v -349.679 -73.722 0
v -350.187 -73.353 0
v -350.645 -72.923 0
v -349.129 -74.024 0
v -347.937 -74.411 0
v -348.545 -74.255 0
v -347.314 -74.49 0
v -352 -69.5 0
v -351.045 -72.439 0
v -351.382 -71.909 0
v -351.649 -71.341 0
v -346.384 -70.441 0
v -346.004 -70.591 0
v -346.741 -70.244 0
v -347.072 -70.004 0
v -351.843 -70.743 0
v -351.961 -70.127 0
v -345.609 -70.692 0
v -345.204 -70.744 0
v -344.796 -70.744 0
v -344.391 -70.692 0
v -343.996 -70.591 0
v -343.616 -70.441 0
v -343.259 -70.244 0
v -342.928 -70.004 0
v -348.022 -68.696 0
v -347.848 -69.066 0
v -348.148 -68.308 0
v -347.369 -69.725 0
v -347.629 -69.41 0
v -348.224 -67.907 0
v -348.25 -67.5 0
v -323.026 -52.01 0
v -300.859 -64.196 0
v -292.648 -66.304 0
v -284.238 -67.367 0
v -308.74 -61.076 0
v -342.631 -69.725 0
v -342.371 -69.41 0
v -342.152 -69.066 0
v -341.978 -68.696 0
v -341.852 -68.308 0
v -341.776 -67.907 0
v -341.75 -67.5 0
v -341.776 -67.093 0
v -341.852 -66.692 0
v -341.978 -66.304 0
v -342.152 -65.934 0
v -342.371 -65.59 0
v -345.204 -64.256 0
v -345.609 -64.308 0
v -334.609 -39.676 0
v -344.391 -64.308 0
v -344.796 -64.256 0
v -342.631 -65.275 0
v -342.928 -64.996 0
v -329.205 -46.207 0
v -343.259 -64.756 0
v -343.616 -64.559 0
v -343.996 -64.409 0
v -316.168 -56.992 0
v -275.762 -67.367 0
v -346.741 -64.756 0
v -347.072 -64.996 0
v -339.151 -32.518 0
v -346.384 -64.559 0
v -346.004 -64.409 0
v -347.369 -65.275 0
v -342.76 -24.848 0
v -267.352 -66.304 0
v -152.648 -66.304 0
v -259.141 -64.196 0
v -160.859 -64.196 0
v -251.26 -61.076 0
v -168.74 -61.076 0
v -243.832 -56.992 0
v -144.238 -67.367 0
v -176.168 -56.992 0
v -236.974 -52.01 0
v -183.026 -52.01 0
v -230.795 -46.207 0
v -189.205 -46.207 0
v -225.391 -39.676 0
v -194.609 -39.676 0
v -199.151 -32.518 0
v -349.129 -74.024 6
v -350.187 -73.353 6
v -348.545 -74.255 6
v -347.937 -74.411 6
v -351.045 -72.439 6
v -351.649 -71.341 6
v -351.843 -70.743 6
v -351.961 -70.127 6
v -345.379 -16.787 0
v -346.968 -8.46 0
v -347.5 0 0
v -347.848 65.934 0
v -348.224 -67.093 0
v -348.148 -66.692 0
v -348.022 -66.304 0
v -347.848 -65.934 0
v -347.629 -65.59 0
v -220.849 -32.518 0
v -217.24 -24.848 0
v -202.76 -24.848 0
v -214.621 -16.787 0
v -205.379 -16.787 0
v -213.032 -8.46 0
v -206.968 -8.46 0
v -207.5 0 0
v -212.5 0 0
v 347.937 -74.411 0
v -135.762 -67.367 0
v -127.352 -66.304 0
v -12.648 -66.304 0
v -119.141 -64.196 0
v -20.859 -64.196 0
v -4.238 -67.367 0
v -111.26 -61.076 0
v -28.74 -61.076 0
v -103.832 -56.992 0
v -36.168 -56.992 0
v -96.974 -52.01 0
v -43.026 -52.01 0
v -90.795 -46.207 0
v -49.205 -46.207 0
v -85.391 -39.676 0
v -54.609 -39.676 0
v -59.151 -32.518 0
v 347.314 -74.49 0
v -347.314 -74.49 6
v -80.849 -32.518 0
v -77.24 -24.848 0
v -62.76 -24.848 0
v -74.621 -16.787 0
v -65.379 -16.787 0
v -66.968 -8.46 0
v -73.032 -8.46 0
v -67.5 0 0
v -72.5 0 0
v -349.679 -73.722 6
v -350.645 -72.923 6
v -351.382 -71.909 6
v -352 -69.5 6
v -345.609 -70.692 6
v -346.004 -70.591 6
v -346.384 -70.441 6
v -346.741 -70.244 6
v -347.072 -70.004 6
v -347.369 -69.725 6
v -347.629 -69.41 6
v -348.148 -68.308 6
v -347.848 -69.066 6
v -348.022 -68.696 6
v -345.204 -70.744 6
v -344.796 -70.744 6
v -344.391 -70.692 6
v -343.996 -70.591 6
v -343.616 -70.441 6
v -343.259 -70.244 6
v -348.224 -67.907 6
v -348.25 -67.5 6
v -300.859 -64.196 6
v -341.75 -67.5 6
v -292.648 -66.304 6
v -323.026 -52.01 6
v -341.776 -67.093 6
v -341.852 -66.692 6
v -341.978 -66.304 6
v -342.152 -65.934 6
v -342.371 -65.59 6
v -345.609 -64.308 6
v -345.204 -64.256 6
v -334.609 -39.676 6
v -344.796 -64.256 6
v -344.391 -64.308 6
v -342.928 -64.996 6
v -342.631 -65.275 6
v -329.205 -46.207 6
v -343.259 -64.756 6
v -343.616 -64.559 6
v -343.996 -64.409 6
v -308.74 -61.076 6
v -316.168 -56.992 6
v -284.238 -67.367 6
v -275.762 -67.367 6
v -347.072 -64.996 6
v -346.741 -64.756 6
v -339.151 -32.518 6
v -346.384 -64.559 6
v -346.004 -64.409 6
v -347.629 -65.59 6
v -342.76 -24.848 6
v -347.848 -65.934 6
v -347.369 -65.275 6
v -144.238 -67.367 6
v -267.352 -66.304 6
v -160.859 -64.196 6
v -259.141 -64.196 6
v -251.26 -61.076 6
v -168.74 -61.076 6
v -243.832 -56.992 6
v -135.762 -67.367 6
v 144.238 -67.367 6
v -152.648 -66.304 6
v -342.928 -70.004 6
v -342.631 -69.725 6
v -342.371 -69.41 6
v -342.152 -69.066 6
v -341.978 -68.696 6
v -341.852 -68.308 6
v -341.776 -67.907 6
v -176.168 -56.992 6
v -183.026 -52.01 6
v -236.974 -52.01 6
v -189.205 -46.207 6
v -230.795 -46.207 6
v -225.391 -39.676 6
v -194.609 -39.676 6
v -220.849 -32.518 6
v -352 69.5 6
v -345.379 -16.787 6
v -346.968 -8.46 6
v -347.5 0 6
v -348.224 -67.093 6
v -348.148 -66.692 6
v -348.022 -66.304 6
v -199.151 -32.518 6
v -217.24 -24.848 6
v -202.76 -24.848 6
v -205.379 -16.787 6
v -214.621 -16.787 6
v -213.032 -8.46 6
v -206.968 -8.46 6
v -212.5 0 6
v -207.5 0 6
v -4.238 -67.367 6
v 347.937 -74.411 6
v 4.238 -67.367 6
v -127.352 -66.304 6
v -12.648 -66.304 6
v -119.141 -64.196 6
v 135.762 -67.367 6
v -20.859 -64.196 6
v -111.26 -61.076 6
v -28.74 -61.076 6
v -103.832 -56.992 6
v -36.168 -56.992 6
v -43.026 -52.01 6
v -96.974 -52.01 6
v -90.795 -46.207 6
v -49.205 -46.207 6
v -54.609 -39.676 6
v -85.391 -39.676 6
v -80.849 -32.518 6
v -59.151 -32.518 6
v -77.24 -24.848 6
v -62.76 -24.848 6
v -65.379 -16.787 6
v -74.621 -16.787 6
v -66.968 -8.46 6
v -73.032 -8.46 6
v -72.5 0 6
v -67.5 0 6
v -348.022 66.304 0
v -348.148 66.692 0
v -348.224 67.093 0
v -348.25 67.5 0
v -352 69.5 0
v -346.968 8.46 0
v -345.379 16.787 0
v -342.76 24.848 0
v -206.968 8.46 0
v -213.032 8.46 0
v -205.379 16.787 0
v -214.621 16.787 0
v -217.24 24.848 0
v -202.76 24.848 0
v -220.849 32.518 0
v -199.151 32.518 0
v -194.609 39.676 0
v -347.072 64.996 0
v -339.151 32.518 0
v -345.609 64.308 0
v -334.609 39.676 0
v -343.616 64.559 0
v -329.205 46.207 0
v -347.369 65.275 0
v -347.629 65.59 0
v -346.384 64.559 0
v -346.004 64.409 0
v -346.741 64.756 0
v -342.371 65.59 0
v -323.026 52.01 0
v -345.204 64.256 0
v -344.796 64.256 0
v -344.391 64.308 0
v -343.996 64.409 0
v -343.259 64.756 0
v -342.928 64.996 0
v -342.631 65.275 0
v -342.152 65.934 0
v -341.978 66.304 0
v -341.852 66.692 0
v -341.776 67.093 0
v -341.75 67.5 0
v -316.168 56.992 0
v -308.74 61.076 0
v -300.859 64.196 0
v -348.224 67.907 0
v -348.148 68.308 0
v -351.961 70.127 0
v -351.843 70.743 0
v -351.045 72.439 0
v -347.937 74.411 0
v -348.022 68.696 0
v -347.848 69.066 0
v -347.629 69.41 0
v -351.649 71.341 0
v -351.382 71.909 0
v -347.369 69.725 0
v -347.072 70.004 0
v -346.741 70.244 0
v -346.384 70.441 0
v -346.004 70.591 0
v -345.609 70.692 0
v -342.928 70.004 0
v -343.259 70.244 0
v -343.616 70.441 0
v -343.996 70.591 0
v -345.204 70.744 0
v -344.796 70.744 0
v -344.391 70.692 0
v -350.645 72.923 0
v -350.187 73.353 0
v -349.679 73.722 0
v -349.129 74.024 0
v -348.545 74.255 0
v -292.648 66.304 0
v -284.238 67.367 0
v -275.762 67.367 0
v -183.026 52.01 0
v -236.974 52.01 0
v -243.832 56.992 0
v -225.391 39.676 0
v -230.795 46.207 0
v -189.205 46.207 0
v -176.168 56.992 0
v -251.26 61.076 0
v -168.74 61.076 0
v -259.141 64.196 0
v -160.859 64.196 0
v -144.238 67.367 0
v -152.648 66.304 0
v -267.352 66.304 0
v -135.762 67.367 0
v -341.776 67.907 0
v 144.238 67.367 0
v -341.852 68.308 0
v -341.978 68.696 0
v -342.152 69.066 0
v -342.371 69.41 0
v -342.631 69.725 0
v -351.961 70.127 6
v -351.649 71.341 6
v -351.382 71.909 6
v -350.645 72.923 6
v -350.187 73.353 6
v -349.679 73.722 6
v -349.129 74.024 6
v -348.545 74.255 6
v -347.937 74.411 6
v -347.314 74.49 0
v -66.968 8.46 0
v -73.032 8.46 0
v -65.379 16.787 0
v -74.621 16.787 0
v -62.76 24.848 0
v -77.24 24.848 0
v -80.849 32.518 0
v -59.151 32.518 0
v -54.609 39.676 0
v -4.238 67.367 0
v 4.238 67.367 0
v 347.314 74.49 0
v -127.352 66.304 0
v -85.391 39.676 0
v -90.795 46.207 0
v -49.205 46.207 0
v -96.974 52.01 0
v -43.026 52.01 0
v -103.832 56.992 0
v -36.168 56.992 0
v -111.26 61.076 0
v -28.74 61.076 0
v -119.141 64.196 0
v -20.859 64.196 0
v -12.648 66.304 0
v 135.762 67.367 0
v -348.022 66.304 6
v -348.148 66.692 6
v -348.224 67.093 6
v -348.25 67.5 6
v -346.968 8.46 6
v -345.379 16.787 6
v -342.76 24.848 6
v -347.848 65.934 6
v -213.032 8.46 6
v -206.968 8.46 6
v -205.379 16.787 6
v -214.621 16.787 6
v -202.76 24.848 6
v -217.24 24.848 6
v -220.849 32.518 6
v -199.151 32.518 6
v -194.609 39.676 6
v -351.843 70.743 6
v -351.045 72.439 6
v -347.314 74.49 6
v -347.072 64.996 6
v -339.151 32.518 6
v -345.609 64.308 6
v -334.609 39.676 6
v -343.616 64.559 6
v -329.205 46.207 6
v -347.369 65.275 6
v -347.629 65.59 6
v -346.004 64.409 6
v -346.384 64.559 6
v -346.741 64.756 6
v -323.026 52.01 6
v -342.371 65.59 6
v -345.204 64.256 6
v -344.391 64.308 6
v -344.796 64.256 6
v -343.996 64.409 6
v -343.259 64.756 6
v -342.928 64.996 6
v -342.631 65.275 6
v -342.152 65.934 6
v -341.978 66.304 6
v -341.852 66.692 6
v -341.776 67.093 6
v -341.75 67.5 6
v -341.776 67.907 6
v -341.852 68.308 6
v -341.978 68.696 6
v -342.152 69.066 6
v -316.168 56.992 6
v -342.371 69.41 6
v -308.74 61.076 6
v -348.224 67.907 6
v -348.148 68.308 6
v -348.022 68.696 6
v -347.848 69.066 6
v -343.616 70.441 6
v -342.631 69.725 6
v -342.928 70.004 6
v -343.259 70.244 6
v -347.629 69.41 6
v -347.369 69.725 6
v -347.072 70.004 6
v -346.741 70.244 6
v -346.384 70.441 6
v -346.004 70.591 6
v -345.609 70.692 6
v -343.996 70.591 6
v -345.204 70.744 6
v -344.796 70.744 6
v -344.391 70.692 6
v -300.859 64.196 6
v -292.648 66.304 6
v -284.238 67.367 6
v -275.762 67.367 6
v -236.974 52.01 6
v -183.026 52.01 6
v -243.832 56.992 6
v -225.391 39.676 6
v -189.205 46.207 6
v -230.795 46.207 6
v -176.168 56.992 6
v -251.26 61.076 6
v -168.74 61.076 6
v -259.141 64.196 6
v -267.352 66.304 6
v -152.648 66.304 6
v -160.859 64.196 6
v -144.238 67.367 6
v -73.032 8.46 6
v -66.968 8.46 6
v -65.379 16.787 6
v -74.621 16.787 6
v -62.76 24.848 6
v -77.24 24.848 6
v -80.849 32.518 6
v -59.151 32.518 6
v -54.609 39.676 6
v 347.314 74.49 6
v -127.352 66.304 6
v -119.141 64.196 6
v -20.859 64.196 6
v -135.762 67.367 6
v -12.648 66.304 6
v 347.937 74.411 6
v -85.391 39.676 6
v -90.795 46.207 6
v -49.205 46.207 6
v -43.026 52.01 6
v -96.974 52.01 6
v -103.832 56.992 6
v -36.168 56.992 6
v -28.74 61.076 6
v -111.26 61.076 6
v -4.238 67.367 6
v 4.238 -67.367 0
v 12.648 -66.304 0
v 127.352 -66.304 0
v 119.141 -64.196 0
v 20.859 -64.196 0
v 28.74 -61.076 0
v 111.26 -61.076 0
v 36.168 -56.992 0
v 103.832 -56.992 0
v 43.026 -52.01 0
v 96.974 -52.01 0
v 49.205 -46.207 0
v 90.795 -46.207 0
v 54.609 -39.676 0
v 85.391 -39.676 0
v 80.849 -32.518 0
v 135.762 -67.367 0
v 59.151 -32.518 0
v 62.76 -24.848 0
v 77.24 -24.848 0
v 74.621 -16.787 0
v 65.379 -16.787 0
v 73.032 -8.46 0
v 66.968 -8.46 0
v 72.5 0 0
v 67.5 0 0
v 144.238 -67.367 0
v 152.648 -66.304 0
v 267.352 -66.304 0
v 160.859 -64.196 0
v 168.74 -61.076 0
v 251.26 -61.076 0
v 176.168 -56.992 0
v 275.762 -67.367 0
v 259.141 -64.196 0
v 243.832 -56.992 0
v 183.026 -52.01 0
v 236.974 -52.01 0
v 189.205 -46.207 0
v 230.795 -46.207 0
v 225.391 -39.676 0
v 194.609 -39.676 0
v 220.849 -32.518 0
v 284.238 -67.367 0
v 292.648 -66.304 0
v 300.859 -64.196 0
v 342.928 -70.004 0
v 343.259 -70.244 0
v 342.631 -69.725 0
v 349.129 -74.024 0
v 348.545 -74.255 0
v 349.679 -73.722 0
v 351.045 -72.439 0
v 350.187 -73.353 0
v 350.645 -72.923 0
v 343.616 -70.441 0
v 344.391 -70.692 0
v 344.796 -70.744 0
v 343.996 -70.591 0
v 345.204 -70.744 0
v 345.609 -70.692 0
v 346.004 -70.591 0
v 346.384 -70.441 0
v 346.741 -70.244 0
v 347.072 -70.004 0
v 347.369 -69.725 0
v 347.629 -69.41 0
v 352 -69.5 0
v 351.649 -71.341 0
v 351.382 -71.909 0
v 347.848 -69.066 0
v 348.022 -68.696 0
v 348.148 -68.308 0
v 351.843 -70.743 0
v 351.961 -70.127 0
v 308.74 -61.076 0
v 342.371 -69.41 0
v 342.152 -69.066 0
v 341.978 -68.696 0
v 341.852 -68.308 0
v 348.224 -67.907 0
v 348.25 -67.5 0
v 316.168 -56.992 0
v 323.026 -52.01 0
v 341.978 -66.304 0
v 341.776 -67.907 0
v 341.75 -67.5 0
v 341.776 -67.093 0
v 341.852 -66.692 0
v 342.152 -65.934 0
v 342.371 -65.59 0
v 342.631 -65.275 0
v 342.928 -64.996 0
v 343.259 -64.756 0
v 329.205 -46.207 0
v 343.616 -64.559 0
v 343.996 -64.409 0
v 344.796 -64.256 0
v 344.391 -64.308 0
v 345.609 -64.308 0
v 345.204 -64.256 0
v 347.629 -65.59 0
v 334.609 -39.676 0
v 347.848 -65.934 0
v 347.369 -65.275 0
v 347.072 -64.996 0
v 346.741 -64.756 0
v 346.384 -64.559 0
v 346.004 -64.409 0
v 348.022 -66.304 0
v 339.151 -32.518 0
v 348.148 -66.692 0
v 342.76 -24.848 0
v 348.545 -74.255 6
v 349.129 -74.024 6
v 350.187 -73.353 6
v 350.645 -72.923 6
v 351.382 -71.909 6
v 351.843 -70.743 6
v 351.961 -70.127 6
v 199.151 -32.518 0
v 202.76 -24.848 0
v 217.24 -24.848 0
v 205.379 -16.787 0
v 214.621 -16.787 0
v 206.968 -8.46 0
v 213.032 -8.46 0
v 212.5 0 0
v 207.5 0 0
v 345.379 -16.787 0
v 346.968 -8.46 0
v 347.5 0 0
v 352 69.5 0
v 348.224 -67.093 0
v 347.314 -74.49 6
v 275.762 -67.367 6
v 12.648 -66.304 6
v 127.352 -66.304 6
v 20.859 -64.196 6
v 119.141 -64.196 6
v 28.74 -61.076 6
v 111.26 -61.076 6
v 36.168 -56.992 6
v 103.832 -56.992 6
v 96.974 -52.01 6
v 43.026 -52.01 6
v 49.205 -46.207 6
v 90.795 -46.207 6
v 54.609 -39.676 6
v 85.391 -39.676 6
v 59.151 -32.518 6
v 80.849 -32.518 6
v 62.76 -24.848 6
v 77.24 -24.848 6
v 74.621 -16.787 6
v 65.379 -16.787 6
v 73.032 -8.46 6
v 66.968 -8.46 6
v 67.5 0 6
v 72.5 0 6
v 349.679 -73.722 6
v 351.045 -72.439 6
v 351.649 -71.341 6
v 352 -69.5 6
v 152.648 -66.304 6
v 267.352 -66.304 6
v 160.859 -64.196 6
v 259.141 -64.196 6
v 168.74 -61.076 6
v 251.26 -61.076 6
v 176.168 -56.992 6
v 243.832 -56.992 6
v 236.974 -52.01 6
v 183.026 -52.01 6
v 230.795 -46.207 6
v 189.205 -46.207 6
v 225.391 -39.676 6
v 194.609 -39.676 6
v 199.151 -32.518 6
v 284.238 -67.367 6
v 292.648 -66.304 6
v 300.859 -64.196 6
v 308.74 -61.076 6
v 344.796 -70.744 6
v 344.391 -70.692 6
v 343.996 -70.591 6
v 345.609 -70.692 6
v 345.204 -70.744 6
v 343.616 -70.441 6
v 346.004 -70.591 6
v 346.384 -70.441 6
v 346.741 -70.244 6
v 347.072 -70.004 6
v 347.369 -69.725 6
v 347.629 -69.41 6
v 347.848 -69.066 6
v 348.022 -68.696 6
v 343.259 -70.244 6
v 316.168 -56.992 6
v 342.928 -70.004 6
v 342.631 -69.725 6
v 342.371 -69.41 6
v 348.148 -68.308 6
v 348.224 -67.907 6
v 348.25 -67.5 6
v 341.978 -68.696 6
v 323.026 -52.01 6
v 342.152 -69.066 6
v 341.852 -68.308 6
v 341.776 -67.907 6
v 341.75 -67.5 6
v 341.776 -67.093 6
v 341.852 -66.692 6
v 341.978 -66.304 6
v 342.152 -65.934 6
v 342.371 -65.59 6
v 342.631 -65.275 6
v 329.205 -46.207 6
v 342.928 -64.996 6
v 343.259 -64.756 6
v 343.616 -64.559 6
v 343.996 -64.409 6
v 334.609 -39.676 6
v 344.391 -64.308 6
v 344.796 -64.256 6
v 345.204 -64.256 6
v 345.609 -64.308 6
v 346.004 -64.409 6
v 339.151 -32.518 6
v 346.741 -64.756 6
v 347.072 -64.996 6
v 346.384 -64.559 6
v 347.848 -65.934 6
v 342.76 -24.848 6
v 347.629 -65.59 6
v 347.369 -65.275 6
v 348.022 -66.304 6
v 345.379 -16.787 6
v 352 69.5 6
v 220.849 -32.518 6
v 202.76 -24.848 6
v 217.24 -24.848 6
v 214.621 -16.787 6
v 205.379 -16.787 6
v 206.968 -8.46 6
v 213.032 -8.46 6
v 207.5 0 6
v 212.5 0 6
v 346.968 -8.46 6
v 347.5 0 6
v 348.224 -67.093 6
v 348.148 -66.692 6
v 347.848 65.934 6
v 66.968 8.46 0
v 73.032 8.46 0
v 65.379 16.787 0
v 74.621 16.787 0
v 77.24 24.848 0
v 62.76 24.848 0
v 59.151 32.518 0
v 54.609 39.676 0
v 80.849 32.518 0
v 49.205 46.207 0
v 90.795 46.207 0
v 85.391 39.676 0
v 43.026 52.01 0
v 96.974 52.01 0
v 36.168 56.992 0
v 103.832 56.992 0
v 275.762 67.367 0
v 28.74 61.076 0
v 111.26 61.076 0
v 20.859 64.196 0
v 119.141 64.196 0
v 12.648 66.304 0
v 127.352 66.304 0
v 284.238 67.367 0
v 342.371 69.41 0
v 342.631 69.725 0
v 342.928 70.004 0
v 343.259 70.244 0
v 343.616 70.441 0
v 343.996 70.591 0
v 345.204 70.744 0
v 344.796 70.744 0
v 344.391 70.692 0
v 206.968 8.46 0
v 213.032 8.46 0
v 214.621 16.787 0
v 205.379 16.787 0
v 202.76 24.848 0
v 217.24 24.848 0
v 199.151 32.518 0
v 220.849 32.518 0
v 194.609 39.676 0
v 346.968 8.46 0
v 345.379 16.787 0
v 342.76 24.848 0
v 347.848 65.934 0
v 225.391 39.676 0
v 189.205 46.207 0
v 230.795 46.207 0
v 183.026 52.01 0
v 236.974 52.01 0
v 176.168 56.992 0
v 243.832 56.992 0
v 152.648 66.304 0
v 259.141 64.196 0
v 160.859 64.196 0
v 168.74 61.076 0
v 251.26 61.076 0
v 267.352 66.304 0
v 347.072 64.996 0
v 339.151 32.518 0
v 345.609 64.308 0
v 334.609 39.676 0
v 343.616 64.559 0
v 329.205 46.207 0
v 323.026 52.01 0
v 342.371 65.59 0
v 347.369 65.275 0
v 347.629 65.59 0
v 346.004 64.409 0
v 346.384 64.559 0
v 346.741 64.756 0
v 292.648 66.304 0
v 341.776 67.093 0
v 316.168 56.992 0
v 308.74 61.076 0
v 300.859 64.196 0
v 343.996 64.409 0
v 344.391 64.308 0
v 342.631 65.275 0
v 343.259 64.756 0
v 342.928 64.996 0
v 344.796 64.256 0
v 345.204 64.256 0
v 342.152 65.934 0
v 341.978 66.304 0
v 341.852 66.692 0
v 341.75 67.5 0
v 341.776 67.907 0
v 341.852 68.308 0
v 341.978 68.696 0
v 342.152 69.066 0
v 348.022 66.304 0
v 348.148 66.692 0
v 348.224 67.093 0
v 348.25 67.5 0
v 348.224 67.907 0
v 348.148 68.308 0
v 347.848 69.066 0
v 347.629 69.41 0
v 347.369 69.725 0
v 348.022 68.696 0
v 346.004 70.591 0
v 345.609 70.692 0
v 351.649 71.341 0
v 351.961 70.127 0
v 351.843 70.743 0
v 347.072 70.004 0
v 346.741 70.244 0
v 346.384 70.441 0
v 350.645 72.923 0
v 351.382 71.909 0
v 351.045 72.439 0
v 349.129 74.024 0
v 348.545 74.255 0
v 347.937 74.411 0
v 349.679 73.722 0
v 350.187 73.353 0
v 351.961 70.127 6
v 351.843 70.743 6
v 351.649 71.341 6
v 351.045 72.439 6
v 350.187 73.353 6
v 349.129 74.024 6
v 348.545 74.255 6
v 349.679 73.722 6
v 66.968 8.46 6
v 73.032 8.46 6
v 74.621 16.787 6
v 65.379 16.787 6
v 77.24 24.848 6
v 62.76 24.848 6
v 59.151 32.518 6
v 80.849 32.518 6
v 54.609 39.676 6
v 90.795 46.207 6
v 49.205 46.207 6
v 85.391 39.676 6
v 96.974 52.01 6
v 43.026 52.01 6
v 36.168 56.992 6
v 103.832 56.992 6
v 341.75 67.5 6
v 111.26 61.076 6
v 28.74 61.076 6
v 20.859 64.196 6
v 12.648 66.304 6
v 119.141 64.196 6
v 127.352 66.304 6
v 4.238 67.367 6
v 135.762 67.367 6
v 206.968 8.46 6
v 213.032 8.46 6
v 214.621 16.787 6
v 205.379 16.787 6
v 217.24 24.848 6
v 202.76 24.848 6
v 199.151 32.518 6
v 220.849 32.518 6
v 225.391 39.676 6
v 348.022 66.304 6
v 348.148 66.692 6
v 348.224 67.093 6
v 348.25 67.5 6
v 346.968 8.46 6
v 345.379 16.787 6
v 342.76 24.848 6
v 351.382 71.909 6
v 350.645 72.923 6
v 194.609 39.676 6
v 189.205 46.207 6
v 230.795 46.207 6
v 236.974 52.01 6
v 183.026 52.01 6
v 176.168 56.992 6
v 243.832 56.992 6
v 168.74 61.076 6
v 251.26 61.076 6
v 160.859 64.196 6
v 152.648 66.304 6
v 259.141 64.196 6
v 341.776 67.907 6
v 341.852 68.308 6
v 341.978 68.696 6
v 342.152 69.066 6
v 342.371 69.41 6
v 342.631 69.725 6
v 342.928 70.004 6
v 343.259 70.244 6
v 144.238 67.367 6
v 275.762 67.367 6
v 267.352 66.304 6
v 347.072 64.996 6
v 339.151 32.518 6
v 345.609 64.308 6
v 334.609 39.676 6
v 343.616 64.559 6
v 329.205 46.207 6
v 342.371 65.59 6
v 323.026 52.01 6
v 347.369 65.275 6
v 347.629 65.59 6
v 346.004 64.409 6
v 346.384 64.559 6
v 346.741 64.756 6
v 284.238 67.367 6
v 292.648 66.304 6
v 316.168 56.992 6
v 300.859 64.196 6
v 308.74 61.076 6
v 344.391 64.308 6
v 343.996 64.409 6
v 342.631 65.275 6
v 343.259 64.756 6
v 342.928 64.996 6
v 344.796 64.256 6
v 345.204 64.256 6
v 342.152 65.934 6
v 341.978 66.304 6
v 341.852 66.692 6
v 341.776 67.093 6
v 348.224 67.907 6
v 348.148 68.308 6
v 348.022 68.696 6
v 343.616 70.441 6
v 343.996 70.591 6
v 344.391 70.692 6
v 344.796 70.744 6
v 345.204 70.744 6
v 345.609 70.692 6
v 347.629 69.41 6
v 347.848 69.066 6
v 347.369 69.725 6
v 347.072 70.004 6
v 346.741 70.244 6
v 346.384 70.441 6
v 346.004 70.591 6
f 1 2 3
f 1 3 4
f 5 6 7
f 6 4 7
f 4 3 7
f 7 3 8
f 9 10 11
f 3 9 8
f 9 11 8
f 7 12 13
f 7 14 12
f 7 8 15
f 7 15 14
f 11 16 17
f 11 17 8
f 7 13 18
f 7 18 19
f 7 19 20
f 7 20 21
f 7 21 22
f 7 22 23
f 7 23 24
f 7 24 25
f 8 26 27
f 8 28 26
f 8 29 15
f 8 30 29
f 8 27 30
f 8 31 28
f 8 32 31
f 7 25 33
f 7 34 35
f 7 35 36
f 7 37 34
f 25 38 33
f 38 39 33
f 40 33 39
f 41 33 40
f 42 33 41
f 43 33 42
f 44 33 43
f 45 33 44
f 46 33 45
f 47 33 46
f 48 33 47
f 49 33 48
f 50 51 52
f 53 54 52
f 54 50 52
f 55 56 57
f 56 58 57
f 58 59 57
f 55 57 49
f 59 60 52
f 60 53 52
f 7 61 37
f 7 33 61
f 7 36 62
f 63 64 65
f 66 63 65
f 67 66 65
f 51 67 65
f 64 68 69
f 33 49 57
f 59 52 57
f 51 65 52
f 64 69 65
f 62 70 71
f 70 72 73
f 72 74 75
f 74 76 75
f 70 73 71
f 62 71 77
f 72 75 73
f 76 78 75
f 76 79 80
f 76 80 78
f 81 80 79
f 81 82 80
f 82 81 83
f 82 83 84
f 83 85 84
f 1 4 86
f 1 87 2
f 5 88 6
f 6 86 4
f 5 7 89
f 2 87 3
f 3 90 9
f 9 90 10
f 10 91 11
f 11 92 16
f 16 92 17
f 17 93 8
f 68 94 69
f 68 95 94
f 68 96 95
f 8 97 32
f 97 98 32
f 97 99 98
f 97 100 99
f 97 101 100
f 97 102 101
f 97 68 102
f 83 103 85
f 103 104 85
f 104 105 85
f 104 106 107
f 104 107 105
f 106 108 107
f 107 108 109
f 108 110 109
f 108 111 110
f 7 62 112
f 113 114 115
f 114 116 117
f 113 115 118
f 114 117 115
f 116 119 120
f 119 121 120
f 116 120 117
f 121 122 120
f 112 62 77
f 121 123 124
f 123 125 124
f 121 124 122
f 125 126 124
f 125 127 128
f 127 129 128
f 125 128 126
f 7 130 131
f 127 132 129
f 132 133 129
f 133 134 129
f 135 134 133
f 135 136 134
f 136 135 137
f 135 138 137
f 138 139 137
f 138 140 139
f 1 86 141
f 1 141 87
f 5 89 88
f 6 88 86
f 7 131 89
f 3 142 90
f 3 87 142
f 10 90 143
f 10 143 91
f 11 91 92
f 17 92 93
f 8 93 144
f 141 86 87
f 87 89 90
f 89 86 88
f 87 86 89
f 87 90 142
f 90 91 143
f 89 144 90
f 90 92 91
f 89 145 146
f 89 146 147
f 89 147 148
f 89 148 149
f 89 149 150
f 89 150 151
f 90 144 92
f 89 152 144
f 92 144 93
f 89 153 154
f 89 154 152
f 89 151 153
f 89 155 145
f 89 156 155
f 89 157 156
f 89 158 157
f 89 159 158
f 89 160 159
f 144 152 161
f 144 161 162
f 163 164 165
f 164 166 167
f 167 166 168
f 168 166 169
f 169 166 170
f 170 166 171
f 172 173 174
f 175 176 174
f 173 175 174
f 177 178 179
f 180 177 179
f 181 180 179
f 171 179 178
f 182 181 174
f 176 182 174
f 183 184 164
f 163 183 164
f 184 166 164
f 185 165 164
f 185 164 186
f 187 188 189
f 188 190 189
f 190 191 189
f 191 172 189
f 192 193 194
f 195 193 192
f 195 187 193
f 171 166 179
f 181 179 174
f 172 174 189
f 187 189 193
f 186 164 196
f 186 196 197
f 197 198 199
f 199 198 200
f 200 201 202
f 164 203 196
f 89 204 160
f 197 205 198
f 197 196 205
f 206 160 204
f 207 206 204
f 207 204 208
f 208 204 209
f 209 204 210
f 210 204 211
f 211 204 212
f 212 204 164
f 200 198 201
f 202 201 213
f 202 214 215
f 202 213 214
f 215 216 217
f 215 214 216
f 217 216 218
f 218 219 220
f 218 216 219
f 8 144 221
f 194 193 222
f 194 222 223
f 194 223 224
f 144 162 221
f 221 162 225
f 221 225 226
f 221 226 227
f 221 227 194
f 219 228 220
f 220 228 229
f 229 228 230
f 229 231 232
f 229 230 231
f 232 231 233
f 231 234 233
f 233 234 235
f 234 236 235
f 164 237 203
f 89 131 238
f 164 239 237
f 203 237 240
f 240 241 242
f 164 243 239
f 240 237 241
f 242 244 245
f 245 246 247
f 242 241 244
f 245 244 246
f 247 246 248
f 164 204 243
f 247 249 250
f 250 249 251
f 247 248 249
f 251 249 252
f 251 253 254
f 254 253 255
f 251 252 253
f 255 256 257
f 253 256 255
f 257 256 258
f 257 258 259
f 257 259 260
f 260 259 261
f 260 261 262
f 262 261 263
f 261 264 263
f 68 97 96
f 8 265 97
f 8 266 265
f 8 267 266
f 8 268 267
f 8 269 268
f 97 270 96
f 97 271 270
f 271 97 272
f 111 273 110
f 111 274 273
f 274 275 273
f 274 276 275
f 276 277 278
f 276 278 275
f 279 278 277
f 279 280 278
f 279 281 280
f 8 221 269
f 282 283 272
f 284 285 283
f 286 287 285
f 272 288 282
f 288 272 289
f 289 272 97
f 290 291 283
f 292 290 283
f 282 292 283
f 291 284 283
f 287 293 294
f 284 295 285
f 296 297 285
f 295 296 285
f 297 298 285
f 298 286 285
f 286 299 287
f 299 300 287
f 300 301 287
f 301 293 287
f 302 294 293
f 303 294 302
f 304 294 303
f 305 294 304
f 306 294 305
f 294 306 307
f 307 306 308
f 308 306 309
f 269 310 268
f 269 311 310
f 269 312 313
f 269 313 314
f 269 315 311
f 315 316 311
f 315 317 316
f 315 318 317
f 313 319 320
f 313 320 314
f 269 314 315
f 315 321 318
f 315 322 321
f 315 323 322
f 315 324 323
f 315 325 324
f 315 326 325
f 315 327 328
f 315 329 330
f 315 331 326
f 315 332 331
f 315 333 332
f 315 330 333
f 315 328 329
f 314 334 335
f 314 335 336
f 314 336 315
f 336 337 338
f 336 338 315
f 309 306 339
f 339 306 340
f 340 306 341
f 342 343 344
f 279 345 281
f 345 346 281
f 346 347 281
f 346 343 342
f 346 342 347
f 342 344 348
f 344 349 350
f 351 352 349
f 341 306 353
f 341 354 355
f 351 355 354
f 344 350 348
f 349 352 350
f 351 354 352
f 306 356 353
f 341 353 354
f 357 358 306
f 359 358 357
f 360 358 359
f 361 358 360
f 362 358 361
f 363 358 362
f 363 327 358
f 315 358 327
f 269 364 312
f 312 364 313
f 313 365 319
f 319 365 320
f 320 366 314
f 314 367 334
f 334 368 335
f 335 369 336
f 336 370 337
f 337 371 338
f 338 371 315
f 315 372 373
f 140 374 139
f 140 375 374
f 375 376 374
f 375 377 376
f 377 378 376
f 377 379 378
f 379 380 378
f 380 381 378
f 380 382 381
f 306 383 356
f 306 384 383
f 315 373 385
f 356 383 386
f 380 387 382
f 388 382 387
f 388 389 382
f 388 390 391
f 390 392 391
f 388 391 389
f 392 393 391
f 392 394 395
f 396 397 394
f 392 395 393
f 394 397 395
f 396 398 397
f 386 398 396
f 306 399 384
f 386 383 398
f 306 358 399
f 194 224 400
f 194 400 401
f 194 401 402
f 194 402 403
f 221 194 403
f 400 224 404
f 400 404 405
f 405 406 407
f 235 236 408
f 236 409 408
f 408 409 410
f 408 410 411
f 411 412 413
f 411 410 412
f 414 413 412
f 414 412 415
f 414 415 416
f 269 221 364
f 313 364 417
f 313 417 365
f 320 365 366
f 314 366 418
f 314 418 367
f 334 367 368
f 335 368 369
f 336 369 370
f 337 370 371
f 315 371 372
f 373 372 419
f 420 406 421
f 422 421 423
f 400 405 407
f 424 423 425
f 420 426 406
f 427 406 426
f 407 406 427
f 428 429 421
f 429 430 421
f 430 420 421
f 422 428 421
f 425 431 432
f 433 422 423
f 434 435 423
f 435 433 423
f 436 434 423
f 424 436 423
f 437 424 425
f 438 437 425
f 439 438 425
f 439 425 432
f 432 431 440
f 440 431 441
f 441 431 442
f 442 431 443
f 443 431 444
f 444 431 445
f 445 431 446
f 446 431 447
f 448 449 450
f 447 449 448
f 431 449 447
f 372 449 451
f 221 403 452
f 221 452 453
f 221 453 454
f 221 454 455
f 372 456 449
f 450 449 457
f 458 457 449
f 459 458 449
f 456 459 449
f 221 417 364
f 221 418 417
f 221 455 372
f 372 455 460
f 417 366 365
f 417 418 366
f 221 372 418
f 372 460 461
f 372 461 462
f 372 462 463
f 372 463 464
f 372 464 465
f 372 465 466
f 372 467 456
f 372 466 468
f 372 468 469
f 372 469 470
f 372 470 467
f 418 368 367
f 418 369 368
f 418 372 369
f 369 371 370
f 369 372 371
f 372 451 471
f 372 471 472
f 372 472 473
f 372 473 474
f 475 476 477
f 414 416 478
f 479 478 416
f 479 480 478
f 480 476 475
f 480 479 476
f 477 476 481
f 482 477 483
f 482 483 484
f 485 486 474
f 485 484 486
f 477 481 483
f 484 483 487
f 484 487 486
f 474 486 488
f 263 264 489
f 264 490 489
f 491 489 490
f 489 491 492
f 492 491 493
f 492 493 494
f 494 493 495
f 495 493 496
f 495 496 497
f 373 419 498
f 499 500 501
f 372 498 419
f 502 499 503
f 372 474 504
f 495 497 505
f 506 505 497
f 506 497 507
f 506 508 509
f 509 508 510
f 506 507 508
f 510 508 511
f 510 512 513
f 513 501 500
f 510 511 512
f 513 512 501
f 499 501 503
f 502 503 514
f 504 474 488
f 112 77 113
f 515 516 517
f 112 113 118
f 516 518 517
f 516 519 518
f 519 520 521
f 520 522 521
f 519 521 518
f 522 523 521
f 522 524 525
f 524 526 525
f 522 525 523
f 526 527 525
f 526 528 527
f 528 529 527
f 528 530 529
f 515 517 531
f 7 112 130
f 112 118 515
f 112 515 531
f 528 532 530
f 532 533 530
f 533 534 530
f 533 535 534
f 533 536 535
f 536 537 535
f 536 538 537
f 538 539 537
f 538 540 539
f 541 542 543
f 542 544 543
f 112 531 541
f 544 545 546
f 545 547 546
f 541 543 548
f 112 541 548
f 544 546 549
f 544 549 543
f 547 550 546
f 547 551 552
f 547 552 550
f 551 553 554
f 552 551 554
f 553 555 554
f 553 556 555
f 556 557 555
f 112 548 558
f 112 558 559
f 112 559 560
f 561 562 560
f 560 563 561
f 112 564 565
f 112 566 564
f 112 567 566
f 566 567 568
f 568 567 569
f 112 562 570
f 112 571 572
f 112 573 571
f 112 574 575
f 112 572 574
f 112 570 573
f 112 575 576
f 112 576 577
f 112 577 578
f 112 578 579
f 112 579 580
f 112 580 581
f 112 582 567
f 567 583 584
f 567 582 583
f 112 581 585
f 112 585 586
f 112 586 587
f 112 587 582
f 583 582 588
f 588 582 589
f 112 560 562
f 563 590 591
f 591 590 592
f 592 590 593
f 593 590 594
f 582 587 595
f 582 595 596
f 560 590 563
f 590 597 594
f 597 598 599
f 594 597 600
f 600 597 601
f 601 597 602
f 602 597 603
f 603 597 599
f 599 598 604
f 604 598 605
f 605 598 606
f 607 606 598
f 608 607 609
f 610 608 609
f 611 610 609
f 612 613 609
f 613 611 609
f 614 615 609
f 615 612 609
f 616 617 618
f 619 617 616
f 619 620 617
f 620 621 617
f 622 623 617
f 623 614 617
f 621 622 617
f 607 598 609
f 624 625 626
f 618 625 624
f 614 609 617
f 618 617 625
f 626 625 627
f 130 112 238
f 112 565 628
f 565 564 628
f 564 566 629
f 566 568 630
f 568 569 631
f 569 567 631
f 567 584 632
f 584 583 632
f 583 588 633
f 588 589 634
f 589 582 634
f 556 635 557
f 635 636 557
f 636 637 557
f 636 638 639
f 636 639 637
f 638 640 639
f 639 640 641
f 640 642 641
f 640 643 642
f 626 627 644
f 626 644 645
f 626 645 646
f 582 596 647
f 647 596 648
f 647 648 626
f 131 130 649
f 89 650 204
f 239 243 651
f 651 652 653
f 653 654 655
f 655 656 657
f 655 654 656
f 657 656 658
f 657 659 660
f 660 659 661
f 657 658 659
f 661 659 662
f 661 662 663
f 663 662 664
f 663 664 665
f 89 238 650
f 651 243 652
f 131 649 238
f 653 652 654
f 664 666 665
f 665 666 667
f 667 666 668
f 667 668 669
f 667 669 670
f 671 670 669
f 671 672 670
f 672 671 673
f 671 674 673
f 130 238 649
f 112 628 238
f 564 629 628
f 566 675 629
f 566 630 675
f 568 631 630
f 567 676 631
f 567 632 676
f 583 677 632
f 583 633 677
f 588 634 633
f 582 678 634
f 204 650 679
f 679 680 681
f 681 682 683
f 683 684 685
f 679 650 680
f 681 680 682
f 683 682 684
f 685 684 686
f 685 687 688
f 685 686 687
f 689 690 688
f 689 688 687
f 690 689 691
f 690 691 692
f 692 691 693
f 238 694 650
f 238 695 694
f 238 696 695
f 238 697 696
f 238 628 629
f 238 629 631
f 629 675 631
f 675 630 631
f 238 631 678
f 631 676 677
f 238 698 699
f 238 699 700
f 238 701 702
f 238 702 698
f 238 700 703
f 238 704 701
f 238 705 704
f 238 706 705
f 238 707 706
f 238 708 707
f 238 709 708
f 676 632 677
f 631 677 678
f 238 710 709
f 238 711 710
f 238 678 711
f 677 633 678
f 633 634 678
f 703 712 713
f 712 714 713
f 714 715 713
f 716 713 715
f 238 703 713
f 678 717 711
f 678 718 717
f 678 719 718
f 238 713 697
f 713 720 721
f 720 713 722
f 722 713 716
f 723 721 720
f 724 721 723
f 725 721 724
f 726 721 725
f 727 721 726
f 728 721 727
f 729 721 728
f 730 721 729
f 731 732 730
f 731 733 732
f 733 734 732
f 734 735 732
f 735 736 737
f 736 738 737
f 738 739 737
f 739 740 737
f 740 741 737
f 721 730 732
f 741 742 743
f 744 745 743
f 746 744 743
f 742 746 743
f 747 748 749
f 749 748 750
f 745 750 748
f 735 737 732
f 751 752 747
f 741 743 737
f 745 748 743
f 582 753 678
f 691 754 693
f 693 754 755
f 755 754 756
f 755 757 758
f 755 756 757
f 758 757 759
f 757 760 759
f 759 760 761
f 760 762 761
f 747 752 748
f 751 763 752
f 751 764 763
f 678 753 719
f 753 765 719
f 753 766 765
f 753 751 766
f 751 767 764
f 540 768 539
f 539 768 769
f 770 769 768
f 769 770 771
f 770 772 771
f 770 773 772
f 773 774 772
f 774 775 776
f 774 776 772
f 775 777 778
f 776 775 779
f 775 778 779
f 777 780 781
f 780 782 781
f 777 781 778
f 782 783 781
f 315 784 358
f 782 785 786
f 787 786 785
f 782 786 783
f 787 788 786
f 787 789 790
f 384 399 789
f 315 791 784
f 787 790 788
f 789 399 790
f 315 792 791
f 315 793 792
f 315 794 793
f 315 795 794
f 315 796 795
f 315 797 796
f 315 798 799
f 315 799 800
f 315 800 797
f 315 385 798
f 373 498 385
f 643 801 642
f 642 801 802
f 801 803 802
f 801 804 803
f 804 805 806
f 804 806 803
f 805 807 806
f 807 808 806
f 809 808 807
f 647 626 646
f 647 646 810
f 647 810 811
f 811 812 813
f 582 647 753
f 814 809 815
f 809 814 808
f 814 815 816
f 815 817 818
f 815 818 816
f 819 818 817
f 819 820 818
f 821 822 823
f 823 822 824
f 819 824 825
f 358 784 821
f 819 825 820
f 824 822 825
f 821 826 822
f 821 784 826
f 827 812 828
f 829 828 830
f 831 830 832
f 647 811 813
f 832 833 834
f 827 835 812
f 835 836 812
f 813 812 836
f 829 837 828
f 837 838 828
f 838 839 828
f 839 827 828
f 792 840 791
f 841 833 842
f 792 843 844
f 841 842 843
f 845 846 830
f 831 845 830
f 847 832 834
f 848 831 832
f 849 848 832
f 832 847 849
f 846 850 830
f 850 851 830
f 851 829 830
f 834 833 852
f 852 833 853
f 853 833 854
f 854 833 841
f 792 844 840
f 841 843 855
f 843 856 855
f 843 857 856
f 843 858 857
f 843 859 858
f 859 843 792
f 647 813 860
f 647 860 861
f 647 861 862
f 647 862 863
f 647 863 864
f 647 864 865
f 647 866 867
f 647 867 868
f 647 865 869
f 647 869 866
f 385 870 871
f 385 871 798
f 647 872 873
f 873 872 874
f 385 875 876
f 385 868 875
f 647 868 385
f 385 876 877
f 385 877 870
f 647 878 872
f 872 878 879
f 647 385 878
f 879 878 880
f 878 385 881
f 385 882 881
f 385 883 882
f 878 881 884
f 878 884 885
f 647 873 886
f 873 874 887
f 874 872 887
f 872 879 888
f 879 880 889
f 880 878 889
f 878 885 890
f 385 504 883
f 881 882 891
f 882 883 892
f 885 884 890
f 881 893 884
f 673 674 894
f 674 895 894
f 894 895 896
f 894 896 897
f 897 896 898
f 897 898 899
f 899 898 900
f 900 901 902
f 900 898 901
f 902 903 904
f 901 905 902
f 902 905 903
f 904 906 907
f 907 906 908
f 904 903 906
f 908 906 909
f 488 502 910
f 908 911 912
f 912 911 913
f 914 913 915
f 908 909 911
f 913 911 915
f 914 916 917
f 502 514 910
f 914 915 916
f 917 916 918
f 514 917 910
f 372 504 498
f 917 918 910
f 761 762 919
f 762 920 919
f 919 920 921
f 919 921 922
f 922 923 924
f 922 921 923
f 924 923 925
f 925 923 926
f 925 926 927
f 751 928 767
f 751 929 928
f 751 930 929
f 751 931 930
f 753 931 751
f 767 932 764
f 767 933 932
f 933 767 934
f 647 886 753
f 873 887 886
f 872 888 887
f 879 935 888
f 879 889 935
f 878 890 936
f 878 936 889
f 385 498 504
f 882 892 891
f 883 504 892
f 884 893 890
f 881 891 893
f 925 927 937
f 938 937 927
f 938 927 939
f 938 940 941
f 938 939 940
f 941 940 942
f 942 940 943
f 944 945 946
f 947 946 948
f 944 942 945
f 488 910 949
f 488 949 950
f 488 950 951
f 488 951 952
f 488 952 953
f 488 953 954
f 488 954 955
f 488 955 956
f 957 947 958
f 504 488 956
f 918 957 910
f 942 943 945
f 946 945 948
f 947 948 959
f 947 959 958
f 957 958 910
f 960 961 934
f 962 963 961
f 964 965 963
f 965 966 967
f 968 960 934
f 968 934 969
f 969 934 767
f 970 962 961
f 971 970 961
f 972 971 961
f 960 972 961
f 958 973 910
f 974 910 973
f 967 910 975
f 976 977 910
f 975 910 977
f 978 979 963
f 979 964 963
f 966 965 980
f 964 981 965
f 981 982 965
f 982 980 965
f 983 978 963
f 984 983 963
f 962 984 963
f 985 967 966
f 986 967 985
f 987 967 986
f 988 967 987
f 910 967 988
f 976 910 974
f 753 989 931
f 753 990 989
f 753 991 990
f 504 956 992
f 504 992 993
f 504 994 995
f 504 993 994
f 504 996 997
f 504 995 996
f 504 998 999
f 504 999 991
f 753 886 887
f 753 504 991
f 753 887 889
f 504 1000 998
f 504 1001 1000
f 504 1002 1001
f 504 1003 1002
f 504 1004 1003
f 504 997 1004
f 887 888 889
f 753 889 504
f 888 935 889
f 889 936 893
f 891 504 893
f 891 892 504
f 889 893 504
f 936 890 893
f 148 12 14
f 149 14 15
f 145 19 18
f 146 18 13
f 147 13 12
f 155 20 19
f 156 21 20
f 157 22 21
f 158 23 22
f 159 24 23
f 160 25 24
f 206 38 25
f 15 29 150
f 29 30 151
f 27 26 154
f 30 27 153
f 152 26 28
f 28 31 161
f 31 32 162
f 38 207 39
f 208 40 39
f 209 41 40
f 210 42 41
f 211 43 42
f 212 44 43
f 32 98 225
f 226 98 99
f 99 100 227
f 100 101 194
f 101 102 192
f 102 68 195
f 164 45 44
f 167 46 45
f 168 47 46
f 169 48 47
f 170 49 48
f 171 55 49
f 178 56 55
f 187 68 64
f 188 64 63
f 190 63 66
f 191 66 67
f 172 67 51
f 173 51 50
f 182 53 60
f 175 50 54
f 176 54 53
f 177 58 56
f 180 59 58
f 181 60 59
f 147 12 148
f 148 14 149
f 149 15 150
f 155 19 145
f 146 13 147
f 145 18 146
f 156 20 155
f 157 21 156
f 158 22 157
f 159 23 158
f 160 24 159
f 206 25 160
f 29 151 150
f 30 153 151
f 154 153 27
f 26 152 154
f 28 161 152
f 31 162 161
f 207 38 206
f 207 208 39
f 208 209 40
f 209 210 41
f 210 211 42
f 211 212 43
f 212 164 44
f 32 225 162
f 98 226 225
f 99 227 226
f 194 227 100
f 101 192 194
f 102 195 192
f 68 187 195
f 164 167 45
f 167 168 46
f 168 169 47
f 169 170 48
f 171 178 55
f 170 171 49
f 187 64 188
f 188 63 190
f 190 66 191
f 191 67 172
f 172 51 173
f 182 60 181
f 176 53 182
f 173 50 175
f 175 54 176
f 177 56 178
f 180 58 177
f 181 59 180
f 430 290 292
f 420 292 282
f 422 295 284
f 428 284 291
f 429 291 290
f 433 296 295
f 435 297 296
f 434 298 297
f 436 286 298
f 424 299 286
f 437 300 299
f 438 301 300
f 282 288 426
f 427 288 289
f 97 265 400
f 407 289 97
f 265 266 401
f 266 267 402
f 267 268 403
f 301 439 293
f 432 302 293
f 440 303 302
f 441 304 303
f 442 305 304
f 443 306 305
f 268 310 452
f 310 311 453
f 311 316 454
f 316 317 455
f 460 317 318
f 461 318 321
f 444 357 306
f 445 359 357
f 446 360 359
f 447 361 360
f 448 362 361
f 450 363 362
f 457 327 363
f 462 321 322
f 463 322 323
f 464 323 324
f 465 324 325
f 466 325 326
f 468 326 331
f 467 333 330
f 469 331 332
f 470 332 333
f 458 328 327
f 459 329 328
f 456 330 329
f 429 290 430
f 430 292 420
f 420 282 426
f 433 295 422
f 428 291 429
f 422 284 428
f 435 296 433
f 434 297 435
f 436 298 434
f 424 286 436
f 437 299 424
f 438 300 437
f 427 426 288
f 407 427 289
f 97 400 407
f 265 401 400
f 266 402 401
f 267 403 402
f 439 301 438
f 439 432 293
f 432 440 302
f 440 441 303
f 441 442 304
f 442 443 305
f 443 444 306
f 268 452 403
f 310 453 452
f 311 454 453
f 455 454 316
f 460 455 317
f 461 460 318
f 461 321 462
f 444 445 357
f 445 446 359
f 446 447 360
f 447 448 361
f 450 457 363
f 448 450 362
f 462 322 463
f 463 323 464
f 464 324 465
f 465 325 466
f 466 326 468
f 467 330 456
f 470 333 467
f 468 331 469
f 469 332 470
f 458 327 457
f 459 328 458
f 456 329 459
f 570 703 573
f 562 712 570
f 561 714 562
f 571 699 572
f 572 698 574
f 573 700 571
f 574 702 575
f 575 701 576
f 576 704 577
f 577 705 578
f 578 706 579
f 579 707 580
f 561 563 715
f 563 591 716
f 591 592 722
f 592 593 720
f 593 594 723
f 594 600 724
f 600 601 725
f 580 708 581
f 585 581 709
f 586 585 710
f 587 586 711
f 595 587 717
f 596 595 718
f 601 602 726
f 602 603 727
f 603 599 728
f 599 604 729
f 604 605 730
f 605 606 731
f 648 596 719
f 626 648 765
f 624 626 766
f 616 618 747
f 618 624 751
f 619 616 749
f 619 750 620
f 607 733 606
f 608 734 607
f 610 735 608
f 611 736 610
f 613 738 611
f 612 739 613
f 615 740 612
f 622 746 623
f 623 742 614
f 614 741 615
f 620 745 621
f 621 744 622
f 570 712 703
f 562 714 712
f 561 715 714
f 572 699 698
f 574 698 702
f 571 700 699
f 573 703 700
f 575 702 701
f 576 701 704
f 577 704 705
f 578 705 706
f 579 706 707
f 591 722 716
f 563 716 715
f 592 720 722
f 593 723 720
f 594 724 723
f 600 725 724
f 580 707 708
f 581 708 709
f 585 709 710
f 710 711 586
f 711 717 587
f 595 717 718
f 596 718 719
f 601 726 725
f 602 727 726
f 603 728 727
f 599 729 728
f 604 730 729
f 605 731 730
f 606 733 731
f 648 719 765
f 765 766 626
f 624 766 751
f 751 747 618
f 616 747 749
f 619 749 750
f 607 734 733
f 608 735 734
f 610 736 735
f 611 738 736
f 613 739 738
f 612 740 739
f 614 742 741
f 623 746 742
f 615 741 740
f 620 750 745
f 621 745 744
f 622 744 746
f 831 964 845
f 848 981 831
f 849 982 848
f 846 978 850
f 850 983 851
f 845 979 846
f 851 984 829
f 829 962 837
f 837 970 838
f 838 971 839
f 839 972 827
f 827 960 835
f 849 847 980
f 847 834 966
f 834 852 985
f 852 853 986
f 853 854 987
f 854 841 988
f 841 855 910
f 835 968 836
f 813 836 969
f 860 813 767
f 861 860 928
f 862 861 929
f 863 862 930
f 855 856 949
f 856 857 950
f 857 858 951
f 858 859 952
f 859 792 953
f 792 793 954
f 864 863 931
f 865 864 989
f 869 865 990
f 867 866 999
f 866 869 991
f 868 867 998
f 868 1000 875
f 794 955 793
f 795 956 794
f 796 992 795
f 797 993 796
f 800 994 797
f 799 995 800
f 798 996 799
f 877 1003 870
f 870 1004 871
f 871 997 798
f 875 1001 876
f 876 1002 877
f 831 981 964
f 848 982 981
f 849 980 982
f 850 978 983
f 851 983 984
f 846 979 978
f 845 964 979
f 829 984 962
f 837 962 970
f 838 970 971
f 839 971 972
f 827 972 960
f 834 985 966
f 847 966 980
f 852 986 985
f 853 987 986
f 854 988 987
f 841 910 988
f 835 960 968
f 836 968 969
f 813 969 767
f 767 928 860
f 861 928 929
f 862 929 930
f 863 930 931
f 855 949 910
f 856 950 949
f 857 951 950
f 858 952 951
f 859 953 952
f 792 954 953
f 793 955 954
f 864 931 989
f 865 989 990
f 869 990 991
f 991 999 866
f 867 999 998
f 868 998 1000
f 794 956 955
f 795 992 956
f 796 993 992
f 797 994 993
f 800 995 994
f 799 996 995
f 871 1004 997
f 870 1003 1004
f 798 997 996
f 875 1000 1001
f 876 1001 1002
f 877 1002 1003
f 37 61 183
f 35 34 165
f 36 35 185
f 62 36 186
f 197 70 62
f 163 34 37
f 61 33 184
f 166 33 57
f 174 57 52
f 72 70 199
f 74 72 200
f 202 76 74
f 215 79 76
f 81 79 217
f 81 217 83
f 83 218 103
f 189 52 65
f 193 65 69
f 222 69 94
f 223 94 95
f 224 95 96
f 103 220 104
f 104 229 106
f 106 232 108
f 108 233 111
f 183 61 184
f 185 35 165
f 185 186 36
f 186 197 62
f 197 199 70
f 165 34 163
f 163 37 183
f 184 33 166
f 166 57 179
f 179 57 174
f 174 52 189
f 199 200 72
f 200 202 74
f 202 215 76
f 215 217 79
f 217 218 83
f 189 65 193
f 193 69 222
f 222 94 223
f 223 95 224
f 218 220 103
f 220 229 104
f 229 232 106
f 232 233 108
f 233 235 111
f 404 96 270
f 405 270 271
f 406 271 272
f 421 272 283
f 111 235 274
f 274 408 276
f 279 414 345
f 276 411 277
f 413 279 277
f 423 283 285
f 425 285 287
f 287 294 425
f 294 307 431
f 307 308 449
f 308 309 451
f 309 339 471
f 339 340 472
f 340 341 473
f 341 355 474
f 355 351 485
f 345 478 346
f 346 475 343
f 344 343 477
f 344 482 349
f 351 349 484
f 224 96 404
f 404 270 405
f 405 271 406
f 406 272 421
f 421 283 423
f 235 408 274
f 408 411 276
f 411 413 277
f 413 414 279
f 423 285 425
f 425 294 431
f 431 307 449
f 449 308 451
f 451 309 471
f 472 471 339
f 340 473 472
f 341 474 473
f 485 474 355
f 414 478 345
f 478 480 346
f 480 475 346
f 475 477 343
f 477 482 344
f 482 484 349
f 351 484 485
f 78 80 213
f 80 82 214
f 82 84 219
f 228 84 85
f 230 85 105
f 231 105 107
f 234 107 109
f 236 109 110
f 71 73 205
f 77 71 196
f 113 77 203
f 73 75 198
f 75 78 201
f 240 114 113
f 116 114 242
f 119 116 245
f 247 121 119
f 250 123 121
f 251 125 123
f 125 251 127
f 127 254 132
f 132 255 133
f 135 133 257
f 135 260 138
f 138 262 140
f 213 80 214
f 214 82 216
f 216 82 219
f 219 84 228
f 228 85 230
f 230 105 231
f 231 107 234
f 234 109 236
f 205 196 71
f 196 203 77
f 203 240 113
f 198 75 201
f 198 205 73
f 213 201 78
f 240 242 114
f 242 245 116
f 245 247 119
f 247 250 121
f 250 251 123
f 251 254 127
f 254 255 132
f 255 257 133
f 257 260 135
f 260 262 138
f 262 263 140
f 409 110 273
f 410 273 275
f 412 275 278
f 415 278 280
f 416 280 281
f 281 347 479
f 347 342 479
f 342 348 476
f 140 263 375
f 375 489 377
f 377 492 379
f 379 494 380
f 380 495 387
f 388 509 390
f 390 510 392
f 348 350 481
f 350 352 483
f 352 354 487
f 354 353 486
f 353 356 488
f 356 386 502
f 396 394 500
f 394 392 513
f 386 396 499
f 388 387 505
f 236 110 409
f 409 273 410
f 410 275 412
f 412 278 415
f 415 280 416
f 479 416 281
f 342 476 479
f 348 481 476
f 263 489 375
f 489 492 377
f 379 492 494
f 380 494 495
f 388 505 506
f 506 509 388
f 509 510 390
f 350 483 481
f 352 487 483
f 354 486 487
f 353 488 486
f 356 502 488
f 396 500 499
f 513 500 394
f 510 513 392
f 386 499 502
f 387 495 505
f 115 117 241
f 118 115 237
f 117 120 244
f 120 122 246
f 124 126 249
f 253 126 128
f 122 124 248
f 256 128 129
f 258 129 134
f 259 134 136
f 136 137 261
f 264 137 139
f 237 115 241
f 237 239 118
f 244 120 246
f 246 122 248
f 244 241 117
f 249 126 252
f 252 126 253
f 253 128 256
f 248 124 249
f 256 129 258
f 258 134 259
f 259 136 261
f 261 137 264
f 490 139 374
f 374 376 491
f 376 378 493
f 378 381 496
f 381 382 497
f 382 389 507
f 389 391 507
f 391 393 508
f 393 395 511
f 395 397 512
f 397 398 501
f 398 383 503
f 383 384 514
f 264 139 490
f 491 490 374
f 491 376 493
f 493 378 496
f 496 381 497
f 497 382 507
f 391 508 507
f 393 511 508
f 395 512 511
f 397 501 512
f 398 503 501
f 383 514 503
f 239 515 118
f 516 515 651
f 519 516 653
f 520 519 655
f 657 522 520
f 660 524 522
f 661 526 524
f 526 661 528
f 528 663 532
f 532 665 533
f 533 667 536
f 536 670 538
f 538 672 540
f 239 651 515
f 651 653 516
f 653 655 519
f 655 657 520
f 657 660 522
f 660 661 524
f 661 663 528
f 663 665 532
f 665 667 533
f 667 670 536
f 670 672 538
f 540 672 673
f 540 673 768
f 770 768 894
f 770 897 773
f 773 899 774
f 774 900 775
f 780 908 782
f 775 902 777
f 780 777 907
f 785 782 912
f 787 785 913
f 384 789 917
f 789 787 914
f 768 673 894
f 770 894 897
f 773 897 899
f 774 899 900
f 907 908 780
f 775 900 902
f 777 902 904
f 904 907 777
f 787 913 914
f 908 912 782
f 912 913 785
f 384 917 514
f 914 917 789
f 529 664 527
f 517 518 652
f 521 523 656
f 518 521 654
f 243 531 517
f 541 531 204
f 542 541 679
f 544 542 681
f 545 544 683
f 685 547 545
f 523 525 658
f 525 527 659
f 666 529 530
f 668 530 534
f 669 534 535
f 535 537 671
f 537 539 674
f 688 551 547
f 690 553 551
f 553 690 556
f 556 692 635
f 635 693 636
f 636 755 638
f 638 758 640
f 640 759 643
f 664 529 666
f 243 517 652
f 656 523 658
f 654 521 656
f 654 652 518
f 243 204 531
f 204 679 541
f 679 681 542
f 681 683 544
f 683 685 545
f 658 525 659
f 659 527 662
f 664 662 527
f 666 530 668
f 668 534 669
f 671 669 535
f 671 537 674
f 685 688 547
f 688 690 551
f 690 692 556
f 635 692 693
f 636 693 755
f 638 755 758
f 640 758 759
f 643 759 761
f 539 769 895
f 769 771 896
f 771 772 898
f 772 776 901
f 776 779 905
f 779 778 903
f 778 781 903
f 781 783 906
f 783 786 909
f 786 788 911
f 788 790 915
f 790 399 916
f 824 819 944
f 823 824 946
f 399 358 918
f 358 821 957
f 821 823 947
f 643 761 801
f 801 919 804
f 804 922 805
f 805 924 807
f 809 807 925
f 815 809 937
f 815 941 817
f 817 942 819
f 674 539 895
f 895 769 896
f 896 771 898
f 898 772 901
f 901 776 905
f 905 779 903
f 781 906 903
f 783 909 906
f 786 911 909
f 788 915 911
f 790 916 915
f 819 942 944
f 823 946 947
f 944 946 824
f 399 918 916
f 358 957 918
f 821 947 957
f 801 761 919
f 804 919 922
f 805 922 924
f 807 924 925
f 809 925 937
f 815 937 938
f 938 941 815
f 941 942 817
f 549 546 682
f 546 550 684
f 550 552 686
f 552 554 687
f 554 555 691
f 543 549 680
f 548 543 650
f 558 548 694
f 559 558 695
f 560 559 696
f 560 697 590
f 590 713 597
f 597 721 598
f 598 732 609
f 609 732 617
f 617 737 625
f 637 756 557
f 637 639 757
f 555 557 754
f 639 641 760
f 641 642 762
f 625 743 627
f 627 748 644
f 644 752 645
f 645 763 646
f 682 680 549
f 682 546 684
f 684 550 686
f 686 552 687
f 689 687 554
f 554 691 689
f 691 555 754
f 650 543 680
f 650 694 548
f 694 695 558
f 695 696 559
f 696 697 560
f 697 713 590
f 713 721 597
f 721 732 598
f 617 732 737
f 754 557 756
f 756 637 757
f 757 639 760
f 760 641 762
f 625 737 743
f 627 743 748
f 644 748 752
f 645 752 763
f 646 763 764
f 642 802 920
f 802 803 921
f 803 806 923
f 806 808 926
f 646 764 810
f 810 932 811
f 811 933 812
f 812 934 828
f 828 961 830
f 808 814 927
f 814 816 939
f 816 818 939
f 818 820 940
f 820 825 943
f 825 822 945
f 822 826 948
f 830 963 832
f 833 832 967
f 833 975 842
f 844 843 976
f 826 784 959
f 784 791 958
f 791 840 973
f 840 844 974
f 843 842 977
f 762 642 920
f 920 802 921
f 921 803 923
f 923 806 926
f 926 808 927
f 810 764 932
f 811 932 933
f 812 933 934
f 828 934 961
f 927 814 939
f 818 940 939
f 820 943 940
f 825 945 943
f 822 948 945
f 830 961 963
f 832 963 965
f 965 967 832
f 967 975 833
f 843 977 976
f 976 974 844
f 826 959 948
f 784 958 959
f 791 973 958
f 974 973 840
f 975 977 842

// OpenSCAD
$fn = 50;

difference() {
	union() {
		hull() {
			translate(v = [-347.0, 69.5, 0]) {
				cylinder(h = 6, r = 5);
			}
			translate(v = [347.0, 69.5, 0]) {
				cylinder(h = 6, r = 5);
			}
			translate(v = [-347.0, -69.5, 0]) {
				cylinder(h = 6, r = 5);
			}
			translate(v = [347.0, -69.5, 0]) {
				cylinder(h = 6, r = 5);
			}
		}
	}
	union() {
		translate(v = [-345.0, -67.5, -100.0]) {
			cylinder(h = 200, r = 3.25);
		}
		translate(v = [-345.0, 67.5, -100.0]) {
			cylinder(h = 200, r = 3.25);
		}
		translate(v = [345.0, -67.5, -100.0]) {
			cylinder(h = 200, r = 3.25);
		}
		translate(v = [345.0, 67.5, -100.0]) {
			cylinder(h = 200, r = 3.25);
		}
		translate(v = [-345.0, -67.5, -100.0]) {
			cylinder(h = 200, r = 1.8);
		}
		translate(v = [-345.0, 67.5, -100.0]) {
			cylinder(h = 200, r = 1.8);
		}
		translate(v = [345.0, -67.5, -100.0]) {
			cylinder(h = 200, r = 1.8);
		}
		translate(v = [345.0, 67.5, -100.0]) {
			cylinder(h = 200, r = 1.8);
		}
		translate(v = [-280.0, 0, 0.0]) {
			cylinder(h = 6, r = 67.5);
		}
		translate(v = [-140.0, 0, 0.0]) {
			cylinder(h = 6, r = 67.5);
		}
		cylinder(h = 6, r = 67.5);
		translate(v = [140.0, 0, 0.0]) {
			cylinder(h = 6, r = 67.5);
		}
		translate(v = [280.0, 0, 0.0]) {
			cylinder(h = 6, r = 67.5);
		}
	}
}
